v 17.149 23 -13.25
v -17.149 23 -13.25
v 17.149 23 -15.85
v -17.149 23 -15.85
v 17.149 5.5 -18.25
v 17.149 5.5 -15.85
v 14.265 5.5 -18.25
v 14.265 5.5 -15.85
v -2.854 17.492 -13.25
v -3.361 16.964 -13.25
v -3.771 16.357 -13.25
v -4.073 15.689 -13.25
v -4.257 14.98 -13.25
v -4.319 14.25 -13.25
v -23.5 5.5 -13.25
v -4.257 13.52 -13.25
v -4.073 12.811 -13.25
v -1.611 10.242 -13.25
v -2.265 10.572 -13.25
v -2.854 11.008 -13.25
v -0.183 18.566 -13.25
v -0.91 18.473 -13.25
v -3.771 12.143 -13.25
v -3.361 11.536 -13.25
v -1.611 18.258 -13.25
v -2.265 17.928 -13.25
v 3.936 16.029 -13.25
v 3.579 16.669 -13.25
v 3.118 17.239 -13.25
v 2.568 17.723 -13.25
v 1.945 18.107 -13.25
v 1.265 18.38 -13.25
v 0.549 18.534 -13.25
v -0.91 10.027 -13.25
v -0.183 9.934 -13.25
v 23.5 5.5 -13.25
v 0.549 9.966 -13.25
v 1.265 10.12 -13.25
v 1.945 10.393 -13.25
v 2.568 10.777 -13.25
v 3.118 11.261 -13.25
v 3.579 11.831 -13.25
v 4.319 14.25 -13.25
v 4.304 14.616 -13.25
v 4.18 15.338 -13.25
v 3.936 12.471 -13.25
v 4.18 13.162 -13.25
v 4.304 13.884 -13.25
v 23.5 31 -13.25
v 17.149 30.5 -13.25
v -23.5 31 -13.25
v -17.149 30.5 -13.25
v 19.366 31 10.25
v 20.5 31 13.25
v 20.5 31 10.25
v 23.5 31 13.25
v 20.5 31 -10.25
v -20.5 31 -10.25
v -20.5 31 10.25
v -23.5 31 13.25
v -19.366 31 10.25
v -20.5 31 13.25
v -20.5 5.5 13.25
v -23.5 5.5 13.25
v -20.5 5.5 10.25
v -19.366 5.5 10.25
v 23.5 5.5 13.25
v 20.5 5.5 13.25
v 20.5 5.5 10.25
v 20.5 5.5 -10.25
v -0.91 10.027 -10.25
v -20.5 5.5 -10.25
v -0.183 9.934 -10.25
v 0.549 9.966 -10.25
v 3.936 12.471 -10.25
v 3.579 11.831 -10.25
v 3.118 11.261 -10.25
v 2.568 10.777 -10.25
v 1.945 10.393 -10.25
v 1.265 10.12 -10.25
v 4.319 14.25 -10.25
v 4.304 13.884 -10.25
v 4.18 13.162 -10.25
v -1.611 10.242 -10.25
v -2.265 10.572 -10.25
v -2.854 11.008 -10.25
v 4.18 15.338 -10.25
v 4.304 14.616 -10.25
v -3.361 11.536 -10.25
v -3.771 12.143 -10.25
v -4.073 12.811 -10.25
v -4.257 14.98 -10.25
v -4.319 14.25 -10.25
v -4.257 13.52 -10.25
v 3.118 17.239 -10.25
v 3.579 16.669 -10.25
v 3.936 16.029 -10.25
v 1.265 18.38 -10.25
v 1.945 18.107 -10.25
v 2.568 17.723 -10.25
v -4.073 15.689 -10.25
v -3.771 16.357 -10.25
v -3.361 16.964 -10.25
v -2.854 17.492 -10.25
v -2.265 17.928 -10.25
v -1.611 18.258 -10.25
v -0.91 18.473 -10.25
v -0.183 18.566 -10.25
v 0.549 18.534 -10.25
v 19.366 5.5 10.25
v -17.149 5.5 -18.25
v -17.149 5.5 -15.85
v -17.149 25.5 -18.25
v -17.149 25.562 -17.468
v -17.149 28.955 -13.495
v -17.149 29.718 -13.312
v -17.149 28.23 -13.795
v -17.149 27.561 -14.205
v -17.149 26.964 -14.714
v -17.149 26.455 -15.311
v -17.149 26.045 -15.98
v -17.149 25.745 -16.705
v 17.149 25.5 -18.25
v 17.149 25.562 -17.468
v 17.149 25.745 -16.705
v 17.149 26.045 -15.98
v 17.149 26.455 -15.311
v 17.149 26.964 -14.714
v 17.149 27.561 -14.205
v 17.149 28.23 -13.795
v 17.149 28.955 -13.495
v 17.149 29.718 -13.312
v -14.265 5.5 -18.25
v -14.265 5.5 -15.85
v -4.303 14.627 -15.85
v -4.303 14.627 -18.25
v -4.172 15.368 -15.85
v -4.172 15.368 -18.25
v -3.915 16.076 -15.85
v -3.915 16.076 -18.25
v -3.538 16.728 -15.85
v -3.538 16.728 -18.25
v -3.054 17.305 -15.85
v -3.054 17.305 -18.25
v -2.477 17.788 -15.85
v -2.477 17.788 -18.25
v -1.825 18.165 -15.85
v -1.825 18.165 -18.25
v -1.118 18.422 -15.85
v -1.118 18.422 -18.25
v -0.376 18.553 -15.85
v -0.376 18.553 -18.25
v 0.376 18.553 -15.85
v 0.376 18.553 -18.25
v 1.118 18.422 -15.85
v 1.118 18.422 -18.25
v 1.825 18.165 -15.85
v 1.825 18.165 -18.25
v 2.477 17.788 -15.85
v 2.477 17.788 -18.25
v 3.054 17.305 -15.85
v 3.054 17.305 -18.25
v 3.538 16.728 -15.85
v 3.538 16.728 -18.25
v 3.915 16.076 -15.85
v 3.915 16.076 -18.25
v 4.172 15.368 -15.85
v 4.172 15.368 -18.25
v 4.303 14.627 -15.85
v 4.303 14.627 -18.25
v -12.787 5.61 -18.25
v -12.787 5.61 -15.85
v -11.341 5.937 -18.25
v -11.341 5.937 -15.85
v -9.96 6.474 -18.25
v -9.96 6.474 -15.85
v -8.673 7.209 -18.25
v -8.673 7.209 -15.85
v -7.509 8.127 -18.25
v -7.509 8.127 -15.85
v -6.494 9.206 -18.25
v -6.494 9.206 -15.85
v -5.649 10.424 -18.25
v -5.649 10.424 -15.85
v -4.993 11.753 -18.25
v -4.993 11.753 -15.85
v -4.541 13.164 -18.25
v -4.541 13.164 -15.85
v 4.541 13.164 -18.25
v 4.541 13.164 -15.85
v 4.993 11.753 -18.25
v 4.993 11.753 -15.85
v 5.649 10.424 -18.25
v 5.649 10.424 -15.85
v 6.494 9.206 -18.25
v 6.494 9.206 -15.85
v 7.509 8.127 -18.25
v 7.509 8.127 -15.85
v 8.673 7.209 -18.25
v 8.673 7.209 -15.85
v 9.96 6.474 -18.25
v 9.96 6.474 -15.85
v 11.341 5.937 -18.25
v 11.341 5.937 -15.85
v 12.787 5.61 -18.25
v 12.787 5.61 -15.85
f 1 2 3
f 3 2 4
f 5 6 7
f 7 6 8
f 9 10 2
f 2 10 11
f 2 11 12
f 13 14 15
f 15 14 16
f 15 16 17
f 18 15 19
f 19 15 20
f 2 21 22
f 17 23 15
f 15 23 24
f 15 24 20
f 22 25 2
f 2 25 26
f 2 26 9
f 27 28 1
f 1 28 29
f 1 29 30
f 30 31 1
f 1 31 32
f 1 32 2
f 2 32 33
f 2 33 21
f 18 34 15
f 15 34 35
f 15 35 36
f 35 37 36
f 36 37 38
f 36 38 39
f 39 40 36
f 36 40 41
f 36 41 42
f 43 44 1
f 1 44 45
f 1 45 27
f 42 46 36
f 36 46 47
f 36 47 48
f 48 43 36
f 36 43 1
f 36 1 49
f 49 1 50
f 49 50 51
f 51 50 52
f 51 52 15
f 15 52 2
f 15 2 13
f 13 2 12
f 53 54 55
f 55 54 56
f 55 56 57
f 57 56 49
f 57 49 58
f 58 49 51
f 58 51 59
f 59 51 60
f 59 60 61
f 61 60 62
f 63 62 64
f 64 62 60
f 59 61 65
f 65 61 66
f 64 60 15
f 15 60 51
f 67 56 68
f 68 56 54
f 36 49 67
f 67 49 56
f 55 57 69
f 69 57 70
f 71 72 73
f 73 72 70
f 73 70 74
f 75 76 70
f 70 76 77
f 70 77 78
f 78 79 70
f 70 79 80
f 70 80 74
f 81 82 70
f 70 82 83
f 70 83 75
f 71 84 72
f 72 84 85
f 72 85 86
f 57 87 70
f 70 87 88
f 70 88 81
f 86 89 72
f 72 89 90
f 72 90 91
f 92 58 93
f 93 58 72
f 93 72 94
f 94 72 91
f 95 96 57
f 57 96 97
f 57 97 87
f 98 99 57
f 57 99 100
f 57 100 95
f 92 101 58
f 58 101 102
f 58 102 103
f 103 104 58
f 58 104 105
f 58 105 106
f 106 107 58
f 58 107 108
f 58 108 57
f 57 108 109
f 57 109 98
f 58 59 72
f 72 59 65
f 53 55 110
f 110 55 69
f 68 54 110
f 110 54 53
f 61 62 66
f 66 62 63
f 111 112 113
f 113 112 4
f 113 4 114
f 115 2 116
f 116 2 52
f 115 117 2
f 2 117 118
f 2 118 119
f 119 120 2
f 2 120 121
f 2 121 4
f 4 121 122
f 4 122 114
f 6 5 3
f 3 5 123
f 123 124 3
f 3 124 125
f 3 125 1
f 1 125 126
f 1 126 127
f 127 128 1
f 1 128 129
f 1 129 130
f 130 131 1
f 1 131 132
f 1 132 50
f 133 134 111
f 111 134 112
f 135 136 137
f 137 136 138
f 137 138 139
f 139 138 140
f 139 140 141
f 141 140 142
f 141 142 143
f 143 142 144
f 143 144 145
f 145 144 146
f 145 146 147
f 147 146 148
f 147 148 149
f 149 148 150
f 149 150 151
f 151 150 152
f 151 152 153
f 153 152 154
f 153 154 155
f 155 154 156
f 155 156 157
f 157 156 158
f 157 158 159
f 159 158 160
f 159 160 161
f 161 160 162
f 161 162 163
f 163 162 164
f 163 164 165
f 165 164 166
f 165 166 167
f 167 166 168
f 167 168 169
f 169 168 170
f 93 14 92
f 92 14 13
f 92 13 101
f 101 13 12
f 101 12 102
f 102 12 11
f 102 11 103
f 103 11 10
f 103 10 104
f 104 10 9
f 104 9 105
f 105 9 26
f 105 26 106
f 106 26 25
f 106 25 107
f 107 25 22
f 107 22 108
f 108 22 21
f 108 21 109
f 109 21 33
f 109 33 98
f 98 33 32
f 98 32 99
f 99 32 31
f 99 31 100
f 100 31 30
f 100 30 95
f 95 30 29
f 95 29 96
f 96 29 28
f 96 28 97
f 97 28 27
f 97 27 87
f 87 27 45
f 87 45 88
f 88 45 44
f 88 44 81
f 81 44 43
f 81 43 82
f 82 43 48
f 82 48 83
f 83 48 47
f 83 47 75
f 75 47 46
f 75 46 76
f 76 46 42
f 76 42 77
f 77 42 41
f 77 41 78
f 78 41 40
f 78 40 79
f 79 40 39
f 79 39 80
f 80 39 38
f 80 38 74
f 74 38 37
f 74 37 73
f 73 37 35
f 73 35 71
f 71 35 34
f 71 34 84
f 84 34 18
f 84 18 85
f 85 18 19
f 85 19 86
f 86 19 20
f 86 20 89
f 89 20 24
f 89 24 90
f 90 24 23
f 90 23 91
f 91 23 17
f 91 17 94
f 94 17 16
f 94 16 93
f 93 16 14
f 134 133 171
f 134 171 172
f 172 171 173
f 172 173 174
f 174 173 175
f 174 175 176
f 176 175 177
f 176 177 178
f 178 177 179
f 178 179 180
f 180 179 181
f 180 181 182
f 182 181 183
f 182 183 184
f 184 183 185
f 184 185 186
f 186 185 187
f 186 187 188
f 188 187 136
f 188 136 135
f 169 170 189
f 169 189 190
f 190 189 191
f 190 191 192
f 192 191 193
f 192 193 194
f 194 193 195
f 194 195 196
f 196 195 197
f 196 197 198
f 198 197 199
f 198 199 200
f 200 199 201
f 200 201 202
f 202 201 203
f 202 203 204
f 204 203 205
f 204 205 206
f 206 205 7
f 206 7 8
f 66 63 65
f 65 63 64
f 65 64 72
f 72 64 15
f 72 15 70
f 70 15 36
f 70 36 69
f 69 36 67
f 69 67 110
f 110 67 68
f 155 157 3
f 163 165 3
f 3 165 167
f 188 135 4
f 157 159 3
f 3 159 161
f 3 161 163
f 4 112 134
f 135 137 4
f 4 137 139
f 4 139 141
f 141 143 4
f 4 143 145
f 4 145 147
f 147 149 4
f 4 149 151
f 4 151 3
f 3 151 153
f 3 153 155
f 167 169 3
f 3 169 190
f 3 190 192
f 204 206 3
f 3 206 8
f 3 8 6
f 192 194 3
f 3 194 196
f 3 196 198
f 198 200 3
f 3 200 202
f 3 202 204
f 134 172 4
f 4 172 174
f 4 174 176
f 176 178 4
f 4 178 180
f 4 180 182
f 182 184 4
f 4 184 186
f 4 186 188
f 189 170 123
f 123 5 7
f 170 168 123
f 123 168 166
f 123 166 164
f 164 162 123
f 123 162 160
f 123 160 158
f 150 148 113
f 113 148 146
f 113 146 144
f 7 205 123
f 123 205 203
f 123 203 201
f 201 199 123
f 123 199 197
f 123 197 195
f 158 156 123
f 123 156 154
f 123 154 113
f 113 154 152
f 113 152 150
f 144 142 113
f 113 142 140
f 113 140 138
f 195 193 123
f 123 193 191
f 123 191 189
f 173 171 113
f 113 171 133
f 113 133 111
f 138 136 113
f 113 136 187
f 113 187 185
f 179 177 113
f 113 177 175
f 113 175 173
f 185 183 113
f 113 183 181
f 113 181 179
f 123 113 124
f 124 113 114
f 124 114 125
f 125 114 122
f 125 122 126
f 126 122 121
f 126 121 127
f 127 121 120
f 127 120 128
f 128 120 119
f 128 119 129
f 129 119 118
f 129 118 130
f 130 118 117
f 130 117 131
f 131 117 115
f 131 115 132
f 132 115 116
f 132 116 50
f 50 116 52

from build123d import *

# Parameters (mm, degrees)
SKETCH1_W               = 47
SKETCH1_H               = 26.5
SKETCH1_W_2             = 41
SKETCH1_H_2             = 20.5
BOSS_EXTRUDE1_DEPTH     = 31
CUT_EXTRUDE2_DEPTH      = 31
SKETCH4_W               = 34.29807853
SKETCH4_H               = 20
BOSS_EXTRUDE2_DEPTH     = 10
SKETCH5_W               = 5
SKETCH5_H               = 17.5
CUT_EXTRUDE3_DEPTH      = 45
CUT_EXTRUDE4_DEPTH      = 64
CUT_EXTRUDE4_DEPTH_BACK = 45
SKETCH6_R               = 4.31945574
SKETCH7_W               = 8.63891148
SKETCH7_H               = 8.75
CUT_EXTRUDE5_DEPTH      = 10
FILLET2_START           = -23.25
FILLET2_DEPTH           = 5
SKETCH8_W               = 26.5
SKETCH8_H               = 5.5
CUT_EXTRUDE6_DEPTH      = 55
BOSS_EXTRUDE3_DEPTH     = 2.4
SKETCH10_W              = 5
SKETCH10_H              = 20
CUT_EXTRUDE7_DEPTH      = 39.4
FILLET4_R               = 5


with BuildPart() as part:
    # Sketch1 → Boss-Extrude1 (new body)
    with BuildSketch(Plane(origin=(0, 0, 0), x_dir=(1, 0, 0), z_dir=(0, 1, 0))):
        Rectangle(SKETCH1_W, SKETCH1_H)
        Rectangle(SKETCH1_W_2, SKETCH1_H_2, mode=Mode.SUBTRACT)
    extrude(amount=BOSS_EXTRUDE1_DEPTH)

    # Sketch3 → Cut-Extrude2 (cut)
    with BuildSketch(Plane(origin=(0, 31, 0), x_dir=(1, 0, 0), z_dir=(0, 1, 0))):
        Polygon((-19.366144394, -10.25), (-20.5, -13.25), (0, -13.25), (0, -10.25), align=None)
        Polygon((0, -10.25), (0, -13.25), (20.5, -13.25), (19.366144394, -10.25), align=None)
    extrude(amount=-CUT_EXTRUDE2_DEPTH, mode=Mode.SUBTRACT)

    # Sketch4 → Boss-Extrude2 (add)
    with BuildSketch(Plane(origin=(0, 0, -13.25), x_dir=(-1, 0, 0), z_dir=(0, 0, -1))):
        with Locations((0, 15.5)):
            Rectangle(SKETCH4_W, SKETCH4_H)
    extrude(amount=BOSS_EXTRUDE2_DEPTH)

    # Sketch5 → Cut-Extrude3 (cut)
    with BuildSketch(Plane(origin=(17.149039265, 0, 0), x_dir=(0, 0, -1), z_dir=(1, 0, 0))):
        with Locations((15.75, 14.25)):
            Rectangle(SKETCH5_W, SKETCH5_H)
    extrude(amount=-CUT_EXTRUDE3_DEPTH, mode=Mode.SUBTRACT)

    # Sketch6 → Cut-Extrude4 (cut, two sides: drawn at the far end of the back side and taken through both)
    with BuildSketch(Plane.XY.offset(-18.25).offset(-CUT_EXTRUDE4_DEPTH_BACK)):
        with Locations(Location((0, 14.25, 0), (0, 0, 180))):
            Circle(SKETCH6_R)
    extrude(amount=CUT_EXTRUDE4_DEPTH + CUT_EXTRUDE4_DEPTH_BACK, mode=Mode.SUBTRACT)

    # Sketch7 → Cut-Extrude5 (cut)
    with BuildSketch(Plane(origin=(0, 0, -23.25), x_dir=(-1, 0, 0), z_dir=(0, 0, -1))):
        with Locations((0, 9.875)):
            Rectangle(SKETCH7_W, SKETCH7_H)
    extrude(amount=-CUT_EXTRUDE5_DEPTH, mode=Mode.SUBTRACT)

    # Fillet2: read off the stored shape, not the designer's step
    # Fillet2 outline → Fillet2 (cut)
    with BuildSketch(Plane.XY.offset(FILLET2_START)):
        with BuildLine():
            ThreePointArc((-4.31945574, 14.25), (-4.315331507, 14.438711079), (-4.302966685, 14.627061794))
            ThreePointArc((-4.302966685, 14.627061794), (-7.509401663, 8.126758445), (-14.264792768, 5.5))
            Line((-14.264792768, 5.5), (-4.31945574, 5.5))
            Line((-4.31945574, 5.5), (-4.31945574, 14.25))
        make_face()
        with BuildLine():
            ThreePointArc((14.264792768, 5.5), (7.509401663, 8.126758445), (4.302966685, 14.627061794))
            ThreePointArc((4.302966685, 14.627061794), (4.315331507, 14.438711079), (4.31945574, 14.25))
            Line((4.31945574, 14.25), (4.31945574, 5.5))
            Line((4.31945574, 5.5), (14.264792768, 5.5))
        make_face()
    extrude(amount=FILLET2_DEPTH, mode=Mode.SUBTRACT)

    # Sketch8 → Cut-Extrude6 (cut)
    with BuildSketch(Plane(origin=(23.5, 0, 0), x_dir=(0, 0, -1), z_dir=(1, 0, 0))):
        with Locations((0, 2.75)):
            Rectangle(SKETCH8_W, SKETCH8_H)
    extrude(amount=-CUT_EXTRUDE6_DEPTH, mode=Mode.SUBTRACT)

    # Sketch9 → Boss-Extrude3 (add)
    with BuildSketch(Plane.XY.offset(-18.25)):
        with BuildLine():
            Line((-17.149039265, 23), (17.149039265, 23))
            Line((17.149039265, 23), (17.149039265, 5.5))
            Line((17.149039265, 5.5), (14.264792768, 5.5))
            ThreePointArc((14.264792768, 5.5), (7.509401663, 8.126758445), (4.302966685, 14.627061794))
            ThreePointArc((4.302966685, 14.627061794), (0, 18.56945574), (-4.302966685, 14.627061794))
            ThreePointArc((-4.302966685, 14.627061794), (-7.509401663, 8.126758445), (-14.264792768, 5.5))
            Line((-14.264792768, 5.5), (-17.149039265, 5.5))
            Line((-17.149039265, 5.5), (-17.149039265, 23))
        make_face()
    extrude(amount=BOSS_EXTRUDE3_DEPTH)

    # Sketch10 → Cut-Extrude7 (cut)
    with BuildSketch(Plane(origin=(17.149039265, 0, 0), x_dir=(0, 0, -1), z_dir=(1, 0, 0))):
        with Locations((20.75, 15.5)):
            Rectangle(SKETCH10_W, SKETCH10_H)
    extrude(amount=-CUT_EXTRUDE7_DEPTH, mode=Mode.SUBTRACT)

    # Fillet4
    fillet4_edges = [part.edges().sort_by_distance(p)[0] for p in [
        (0, 25.5, -13.25),
    ]]
    fillet(fillet4_edges, radius=FILLET4_R - 0.0001)  # a hair under: the kernel refuses the full size


solid = part.part
